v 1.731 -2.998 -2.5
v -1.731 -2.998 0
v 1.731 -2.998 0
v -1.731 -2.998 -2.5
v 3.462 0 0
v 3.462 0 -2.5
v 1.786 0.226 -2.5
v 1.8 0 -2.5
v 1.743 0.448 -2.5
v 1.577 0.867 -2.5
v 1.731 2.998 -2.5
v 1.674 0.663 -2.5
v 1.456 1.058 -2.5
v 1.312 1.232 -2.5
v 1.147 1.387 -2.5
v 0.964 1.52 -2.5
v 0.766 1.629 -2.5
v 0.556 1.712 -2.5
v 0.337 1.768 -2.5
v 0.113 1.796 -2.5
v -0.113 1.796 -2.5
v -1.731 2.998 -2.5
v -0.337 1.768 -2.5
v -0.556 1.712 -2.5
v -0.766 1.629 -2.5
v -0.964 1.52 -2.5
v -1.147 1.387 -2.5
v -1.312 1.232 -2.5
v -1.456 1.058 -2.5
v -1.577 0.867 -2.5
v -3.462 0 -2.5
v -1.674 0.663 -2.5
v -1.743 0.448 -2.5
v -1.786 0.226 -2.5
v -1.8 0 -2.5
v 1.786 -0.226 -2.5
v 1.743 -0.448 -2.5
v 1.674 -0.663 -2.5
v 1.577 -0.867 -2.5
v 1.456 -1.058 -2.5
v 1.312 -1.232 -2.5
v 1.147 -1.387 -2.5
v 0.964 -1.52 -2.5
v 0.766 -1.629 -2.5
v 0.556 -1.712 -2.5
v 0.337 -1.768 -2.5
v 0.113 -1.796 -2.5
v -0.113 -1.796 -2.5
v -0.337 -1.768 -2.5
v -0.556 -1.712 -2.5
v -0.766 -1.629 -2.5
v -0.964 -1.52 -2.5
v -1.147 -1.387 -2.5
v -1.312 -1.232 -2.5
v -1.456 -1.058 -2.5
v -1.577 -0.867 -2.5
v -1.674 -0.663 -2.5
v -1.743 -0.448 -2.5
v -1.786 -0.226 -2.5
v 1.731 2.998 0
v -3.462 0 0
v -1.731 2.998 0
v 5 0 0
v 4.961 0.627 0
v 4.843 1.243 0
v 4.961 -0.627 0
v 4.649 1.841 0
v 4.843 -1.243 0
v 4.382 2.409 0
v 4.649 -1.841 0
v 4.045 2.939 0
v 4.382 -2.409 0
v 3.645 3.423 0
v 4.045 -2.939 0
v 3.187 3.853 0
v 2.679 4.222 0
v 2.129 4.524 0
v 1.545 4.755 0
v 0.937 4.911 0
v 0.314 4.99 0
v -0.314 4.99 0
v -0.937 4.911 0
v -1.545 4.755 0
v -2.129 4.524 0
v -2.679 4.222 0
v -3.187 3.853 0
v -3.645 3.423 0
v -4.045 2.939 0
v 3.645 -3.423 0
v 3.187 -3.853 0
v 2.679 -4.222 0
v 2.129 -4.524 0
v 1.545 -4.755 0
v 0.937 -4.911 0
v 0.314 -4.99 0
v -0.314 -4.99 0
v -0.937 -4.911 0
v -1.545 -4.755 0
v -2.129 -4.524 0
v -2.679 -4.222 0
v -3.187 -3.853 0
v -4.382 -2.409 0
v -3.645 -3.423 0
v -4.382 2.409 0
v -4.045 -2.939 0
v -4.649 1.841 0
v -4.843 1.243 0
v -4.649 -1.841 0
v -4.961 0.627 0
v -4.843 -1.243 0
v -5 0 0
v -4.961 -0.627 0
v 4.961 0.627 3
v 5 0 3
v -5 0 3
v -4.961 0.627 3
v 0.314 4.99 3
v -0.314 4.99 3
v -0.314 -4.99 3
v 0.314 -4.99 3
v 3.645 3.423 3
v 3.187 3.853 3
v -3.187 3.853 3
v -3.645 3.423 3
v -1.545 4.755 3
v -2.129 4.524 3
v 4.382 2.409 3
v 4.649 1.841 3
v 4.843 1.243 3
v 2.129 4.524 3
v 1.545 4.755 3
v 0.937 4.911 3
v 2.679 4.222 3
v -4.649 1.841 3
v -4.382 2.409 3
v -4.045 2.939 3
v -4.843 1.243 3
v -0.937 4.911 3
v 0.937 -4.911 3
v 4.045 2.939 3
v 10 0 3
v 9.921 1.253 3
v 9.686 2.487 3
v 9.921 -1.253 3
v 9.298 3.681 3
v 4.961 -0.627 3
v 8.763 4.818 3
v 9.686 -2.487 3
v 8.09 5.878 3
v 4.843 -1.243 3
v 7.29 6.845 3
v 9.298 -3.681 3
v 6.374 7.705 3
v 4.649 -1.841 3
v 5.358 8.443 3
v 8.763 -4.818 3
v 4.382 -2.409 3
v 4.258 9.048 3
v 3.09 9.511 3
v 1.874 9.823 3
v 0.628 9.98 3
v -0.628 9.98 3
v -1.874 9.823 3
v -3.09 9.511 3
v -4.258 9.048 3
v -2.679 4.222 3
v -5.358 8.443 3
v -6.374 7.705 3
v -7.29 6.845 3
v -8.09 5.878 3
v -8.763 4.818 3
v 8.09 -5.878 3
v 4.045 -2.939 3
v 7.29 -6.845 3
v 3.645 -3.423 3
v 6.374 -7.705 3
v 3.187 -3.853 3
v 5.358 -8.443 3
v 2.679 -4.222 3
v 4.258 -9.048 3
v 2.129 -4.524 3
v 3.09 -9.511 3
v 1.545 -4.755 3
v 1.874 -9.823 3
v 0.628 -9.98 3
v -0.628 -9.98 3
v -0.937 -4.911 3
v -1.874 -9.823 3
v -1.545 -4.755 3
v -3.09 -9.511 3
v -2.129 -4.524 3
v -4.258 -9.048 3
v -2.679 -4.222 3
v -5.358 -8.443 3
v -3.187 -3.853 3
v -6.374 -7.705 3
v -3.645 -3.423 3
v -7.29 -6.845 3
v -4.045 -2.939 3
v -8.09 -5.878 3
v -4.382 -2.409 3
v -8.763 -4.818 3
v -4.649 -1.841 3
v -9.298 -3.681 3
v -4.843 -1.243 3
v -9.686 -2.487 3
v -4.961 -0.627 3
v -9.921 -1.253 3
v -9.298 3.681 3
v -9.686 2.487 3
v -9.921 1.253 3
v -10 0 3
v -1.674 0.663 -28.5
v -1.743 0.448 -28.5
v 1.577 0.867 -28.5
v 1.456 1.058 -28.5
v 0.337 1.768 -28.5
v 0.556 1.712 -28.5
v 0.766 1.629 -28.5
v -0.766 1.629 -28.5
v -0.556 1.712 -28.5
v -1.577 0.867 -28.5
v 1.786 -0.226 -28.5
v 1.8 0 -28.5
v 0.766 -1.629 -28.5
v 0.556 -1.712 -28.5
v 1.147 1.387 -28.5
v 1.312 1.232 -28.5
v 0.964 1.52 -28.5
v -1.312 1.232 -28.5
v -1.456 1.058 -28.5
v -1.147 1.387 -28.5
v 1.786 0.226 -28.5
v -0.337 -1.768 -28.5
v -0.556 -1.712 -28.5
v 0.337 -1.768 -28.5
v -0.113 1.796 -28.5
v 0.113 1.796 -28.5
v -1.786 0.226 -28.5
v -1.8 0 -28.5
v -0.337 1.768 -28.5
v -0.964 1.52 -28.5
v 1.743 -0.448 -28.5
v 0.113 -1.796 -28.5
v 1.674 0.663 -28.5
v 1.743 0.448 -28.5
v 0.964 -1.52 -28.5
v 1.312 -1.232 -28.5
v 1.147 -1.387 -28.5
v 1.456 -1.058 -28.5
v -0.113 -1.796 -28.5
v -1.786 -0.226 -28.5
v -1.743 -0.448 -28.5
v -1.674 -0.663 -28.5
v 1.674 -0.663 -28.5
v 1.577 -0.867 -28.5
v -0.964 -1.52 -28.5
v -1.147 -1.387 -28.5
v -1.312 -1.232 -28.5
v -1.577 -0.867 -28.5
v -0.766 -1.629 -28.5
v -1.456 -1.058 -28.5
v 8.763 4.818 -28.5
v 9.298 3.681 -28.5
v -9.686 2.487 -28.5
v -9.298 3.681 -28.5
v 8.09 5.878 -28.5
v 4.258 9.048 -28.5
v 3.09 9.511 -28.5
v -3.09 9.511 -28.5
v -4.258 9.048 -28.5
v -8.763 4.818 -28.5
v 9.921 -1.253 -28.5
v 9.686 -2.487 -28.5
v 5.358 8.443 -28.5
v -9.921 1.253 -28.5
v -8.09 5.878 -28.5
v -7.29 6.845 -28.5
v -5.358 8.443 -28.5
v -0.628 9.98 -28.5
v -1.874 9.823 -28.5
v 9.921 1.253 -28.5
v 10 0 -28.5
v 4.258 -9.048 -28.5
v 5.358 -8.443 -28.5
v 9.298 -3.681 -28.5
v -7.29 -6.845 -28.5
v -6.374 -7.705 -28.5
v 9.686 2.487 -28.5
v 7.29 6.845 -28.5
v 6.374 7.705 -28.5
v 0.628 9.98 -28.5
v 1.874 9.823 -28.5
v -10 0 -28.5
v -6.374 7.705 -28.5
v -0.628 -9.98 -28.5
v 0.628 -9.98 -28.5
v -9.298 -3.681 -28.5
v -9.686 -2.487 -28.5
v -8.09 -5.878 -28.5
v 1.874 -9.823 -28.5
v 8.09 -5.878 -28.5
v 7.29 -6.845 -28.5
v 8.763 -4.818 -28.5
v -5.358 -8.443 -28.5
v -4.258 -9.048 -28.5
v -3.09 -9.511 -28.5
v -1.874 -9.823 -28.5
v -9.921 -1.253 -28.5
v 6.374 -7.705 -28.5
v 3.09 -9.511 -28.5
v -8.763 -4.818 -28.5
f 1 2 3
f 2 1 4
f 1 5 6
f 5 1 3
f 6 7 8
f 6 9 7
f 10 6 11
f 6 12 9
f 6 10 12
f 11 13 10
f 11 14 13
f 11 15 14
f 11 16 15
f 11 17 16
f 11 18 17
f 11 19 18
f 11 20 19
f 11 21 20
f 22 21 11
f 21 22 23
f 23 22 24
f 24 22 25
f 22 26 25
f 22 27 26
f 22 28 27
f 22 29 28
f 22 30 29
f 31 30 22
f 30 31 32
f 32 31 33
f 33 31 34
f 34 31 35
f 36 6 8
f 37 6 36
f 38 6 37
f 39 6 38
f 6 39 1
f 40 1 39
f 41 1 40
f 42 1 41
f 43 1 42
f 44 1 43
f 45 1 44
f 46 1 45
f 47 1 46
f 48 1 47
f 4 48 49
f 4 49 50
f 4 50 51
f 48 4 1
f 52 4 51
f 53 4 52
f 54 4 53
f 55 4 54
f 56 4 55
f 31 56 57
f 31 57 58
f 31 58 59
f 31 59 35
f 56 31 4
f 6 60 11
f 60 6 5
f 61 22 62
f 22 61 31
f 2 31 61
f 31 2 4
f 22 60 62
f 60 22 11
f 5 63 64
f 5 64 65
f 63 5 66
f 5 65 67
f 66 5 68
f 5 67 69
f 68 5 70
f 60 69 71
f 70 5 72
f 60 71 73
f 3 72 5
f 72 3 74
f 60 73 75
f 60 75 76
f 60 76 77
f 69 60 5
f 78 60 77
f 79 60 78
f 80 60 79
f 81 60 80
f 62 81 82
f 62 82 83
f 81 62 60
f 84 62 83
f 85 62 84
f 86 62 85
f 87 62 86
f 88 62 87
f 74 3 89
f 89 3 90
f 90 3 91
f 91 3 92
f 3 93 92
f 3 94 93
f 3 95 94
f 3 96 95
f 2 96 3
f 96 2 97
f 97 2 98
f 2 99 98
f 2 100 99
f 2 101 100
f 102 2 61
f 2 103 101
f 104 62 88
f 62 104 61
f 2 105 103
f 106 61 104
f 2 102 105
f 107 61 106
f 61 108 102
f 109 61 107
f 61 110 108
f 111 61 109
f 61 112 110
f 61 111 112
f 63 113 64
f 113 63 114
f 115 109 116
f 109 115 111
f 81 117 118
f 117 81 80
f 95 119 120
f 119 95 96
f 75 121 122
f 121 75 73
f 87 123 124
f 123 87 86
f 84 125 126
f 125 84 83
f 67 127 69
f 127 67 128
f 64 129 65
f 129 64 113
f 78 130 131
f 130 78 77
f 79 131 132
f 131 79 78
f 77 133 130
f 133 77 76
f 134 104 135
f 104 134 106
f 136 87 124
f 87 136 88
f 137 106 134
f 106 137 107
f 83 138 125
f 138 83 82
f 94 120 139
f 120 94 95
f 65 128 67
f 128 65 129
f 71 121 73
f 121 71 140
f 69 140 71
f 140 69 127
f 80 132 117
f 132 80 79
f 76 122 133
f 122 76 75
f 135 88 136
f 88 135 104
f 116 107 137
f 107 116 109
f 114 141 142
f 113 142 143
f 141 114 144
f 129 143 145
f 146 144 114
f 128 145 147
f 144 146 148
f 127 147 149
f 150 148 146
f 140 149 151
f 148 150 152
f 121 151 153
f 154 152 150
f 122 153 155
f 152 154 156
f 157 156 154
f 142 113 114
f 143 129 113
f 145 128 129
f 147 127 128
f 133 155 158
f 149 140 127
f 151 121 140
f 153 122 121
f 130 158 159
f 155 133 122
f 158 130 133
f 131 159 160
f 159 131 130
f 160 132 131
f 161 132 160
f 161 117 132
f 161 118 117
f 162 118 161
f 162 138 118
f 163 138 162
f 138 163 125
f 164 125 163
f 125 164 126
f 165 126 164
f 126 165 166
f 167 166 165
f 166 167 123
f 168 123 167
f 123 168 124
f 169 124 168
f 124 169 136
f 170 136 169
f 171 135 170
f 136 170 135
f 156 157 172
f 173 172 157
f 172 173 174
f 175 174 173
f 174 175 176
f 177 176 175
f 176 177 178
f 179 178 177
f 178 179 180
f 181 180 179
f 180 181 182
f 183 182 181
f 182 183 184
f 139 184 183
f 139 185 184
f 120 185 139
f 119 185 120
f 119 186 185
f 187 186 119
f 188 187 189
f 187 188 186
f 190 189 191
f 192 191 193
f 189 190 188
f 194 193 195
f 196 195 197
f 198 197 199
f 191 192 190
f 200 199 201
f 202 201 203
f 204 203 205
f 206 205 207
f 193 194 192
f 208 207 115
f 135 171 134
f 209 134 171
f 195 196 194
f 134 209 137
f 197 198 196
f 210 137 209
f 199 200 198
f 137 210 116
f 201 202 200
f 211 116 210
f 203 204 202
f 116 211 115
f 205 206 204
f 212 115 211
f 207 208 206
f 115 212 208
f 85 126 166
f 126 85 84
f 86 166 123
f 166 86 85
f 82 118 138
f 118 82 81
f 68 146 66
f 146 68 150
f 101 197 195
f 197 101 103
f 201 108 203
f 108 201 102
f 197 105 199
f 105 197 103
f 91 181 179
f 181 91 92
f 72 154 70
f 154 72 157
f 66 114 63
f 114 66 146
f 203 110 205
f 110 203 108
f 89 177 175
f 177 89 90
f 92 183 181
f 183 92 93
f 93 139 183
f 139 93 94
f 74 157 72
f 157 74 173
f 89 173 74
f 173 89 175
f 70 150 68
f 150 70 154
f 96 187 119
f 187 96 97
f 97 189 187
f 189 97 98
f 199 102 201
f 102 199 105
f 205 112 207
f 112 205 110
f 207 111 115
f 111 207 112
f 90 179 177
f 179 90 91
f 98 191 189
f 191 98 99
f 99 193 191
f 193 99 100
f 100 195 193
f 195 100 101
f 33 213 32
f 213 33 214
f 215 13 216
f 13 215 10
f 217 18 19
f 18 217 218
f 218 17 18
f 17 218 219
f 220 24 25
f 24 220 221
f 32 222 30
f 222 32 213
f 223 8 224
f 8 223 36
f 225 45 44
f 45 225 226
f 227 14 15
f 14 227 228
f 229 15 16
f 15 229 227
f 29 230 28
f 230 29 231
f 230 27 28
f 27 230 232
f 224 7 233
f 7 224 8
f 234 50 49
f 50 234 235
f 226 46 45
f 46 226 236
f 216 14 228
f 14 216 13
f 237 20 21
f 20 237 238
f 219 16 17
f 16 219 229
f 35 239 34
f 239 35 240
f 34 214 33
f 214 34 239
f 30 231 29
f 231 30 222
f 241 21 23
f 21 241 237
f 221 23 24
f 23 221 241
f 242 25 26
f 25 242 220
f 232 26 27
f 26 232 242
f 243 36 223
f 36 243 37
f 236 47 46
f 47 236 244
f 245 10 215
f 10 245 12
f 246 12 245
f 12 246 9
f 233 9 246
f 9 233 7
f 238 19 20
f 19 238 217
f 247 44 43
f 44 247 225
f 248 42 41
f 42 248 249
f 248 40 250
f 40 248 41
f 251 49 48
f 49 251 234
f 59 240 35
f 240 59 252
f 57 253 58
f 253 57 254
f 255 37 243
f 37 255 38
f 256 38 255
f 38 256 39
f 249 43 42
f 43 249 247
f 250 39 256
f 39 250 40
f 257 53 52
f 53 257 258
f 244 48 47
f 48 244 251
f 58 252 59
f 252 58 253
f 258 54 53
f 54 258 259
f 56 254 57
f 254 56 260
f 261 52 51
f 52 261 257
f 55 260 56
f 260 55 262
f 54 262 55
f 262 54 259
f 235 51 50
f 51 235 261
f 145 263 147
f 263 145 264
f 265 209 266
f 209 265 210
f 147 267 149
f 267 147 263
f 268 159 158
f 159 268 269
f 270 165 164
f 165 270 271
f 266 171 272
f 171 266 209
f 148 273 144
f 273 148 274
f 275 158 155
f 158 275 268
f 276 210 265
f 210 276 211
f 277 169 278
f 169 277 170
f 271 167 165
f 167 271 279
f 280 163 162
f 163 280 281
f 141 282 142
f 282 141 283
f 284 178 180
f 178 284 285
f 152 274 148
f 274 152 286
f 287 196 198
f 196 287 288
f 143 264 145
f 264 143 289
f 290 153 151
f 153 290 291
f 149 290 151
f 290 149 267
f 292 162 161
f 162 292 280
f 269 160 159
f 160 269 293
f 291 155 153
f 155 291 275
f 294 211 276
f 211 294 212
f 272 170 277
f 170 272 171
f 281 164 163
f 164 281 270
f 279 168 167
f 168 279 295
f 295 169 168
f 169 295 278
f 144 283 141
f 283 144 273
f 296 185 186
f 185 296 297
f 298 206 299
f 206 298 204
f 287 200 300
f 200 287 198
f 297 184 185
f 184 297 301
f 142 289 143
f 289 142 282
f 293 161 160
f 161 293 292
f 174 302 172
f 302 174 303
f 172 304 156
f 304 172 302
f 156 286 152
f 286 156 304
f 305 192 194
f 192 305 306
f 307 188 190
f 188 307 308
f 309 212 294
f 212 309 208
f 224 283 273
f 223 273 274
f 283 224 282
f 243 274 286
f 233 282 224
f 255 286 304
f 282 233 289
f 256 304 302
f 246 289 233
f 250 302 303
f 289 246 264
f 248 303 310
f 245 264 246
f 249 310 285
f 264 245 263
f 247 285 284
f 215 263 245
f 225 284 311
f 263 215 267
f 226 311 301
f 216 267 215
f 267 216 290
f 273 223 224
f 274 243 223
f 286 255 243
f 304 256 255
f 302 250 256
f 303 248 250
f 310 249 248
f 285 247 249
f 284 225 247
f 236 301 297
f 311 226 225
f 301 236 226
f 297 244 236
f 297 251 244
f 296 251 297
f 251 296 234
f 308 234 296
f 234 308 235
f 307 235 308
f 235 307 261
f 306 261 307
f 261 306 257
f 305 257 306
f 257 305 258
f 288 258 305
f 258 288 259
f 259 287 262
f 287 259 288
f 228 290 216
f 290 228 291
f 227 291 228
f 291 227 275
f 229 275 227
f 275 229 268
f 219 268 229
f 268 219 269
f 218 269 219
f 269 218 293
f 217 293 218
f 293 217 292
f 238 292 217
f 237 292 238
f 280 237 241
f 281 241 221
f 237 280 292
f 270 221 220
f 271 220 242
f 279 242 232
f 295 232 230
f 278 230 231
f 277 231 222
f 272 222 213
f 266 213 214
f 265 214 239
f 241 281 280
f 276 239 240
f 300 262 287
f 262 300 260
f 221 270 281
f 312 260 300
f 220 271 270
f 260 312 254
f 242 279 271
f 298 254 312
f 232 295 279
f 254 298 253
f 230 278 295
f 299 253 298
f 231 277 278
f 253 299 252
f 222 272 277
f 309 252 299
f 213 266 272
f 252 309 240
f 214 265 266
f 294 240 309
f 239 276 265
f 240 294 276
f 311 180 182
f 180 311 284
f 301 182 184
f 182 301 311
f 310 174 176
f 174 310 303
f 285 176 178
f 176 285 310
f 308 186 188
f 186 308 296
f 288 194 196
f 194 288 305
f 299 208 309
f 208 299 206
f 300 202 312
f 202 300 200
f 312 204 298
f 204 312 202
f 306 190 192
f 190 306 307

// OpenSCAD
$fn = 50;


difference() {
	union() {
		translate(v = [0, 0, -28.5000000000]) {
			cylinder(h = 31.5000000000, r = 10.0000000000);
		}
	}
	union() {
		translate(v = [0, 0, 0]) {
			rotate(a = [0, 0, 0]) {
				difference() {
					union() {
						translate(v = [0, 0, -2.5000000000]) {
							linear_extrude(height = 2.5000000000) {
								polygon(points = [[3.4620000000, 0.0000000000], [1.7310000000, 2.9981799479], [-1.7310000000, 2.9981799479], [-3.4620000000, 0.0000000000], [-1.7310000000, -2.9981799479], [1.7310000000, -2.9981799479]]);
							}
						}
					}
					union();
				}
			}
		}
		#cylinder(h = 3, r = 5.0000000000);
		#translate(v = [0, 0, -100.0000000000]) {
			cylinder(h = 200, r = 1.8000000000);
		}
	}
}
